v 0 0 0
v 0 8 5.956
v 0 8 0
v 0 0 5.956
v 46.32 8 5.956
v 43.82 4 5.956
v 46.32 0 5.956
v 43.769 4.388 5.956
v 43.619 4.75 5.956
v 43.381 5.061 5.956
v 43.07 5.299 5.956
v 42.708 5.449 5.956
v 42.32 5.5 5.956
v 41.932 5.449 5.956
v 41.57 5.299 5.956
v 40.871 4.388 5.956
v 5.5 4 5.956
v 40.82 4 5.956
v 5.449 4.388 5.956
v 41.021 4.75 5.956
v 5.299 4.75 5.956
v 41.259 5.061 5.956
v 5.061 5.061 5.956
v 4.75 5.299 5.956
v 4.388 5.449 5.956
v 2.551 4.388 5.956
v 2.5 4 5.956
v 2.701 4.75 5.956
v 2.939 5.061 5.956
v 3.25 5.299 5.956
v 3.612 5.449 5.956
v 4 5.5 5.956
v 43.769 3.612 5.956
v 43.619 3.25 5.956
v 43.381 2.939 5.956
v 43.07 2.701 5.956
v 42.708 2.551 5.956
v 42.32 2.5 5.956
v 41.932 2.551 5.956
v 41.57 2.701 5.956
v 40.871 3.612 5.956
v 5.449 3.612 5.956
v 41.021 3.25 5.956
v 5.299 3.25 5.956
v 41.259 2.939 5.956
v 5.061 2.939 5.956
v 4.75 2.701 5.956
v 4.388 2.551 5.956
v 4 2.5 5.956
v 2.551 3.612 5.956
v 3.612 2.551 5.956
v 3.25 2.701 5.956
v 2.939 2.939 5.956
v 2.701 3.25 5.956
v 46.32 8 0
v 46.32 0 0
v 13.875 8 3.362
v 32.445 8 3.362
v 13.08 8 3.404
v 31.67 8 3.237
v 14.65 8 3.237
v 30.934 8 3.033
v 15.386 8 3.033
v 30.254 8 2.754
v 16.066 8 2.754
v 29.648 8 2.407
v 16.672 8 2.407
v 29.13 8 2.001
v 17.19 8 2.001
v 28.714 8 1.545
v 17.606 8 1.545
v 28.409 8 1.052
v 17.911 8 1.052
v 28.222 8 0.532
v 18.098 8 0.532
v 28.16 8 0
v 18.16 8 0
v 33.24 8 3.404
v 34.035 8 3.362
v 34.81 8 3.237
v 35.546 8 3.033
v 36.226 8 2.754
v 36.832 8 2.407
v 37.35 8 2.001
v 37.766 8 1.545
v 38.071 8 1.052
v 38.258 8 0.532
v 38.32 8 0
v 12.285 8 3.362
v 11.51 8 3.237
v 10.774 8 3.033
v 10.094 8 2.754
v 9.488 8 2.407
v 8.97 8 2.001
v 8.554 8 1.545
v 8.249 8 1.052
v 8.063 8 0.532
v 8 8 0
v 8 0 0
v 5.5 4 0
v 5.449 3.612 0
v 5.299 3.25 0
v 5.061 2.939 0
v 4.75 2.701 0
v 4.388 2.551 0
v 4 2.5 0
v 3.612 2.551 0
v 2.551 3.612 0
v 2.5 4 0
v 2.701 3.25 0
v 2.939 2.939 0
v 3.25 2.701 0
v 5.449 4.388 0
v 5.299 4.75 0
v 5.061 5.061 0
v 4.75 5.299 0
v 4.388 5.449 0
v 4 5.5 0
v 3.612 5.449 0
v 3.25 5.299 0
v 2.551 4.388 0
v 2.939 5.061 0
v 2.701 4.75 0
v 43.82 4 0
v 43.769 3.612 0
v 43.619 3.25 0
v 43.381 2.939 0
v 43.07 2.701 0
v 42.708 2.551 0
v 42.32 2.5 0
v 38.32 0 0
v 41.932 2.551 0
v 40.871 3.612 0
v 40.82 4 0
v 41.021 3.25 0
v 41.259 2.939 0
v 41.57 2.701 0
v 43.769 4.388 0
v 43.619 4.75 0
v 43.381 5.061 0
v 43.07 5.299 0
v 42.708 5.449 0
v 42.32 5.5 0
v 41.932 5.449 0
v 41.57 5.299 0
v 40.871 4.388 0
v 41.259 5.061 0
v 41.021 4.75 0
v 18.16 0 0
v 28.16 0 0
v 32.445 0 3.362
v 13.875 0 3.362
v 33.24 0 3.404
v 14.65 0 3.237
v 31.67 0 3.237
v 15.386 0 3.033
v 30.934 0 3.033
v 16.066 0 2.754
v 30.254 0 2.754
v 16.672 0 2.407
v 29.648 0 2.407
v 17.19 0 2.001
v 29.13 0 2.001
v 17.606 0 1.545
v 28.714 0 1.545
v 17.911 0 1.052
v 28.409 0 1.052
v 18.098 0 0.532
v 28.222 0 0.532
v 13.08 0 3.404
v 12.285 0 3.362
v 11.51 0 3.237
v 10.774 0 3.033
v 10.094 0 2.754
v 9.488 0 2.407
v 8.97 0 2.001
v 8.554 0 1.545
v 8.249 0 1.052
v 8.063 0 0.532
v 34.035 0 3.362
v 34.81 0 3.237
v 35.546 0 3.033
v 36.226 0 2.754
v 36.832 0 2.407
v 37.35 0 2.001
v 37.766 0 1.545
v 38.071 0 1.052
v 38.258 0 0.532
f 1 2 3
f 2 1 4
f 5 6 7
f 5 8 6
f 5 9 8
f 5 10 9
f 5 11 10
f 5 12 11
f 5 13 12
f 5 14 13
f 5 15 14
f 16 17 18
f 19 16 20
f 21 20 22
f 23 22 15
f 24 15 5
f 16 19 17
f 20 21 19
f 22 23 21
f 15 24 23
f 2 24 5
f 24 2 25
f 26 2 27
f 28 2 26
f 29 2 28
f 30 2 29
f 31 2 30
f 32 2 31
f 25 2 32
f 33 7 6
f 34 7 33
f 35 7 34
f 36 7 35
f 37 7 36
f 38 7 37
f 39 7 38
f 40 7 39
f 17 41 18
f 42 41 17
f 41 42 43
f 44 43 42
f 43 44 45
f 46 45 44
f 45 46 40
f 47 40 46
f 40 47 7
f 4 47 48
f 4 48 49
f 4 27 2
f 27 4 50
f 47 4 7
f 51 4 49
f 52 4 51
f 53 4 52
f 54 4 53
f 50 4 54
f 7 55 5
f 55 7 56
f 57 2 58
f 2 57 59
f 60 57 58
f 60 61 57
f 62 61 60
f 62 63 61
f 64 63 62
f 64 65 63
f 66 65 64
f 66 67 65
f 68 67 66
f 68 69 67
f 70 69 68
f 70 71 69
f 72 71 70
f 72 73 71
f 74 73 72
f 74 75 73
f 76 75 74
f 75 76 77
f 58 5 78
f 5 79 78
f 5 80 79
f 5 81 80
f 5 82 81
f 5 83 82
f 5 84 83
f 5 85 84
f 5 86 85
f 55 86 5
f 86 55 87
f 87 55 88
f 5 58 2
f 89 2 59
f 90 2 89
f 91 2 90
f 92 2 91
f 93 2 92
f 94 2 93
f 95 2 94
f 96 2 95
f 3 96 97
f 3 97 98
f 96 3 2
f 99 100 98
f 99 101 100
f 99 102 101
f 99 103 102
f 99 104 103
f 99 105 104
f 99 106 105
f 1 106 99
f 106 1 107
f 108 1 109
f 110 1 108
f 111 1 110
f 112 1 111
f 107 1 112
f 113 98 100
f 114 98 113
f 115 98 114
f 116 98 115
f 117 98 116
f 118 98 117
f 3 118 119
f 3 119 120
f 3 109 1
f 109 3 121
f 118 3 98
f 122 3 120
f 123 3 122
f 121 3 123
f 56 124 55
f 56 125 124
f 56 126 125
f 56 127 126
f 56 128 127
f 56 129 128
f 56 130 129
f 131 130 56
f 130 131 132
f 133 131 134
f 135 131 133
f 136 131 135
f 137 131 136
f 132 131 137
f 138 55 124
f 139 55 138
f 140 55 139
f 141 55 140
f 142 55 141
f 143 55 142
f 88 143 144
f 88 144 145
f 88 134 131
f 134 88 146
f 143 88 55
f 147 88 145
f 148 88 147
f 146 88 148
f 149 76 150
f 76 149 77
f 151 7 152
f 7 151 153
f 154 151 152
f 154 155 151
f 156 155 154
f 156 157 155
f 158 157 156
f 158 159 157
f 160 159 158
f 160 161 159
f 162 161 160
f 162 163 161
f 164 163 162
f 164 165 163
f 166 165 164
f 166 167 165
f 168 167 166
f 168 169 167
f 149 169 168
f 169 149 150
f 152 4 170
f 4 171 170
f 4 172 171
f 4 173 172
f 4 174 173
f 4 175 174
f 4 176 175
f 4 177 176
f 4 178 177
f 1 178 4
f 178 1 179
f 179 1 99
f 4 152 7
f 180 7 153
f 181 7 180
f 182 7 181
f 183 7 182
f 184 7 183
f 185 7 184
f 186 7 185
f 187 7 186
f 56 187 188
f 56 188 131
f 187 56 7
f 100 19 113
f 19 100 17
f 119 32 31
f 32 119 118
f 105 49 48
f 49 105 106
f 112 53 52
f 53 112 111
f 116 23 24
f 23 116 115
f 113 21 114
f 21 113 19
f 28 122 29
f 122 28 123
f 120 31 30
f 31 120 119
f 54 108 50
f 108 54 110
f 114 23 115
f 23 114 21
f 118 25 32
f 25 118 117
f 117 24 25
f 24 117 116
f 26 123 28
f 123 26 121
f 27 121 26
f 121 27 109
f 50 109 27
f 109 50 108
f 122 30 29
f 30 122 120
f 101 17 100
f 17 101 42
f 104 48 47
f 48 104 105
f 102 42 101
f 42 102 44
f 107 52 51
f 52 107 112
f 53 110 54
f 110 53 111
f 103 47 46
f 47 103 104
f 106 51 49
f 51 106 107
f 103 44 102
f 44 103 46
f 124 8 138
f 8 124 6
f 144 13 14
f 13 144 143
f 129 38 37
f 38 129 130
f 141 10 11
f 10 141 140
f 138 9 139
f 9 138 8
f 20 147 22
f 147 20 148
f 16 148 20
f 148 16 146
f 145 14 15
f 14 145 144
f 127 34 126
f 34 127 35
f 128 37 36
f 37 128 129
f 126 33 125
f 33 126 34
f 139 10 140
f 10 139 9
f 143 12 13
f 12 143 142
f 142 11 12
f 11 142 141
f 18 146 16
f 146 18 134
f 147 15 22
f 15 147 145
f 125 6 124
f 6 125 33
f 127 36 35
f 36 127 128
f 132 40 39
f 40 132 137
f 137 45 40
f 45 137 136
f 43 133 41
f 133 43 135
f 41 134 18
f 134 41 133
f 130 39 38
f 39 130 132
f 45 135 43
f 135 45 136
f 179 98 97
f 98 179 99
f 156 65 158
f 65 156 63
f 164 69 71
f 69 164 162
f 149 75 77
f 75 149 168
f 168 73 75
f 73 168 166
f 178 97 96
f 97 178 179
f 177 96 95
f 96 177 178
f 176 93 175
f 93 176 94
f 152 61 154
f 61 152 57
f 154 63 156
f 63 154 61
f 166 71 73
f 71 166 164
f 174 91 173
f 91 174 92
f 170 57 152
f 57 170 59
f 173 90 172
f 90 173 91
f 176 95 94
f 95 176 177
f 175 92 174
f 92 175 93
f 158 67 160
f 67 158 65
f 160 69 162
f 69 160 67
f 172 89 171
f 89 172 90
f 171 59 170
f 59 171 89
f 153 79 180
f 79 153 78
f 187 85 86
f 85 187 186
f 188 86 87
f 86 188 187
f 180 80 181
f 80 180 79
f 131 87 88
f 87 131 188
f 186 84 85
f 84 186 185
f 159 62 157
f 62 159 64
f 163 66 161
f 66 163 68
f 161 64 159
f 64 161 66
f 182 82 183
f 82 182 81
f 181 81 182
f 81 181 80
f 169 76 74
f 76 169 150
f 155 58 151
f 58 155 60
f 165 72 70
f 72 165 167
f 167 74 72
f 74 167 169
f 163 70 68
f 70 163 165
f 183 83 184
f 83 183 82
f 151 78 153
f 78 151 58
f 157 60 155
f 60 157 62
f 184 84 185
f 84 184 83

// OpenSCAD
//Constants
h_led = .134*25.4; //mm
h_total = 1.75*h_led; //mm
d_screw = 3;//mm
d_head = 5;//mm
edge=1.5;//mm
center=10;//mm
w_led = .4*25.4; //mm need to measure
w_total = center+2*(w_led+edge+d_head+edge); //mm
l_total = d_head +2*edge; //mm
fudge=.001;//mm to offset coincident faces



//make a cube, and take differences
difference () {
    //root cube
    cube([w_total,l_total,h_total]);
    //remove screwholes
    translate([d_head/2+edge,l_total/2,-fudge])
    cylinder(h=h_total+2*fudge,d=d_screw,$fn=24); 
    translate([w_total-d_head/2-edge,l_total/2,-fudge])
    cylinder(h=h_total+2*fudge,d=d_screw,$fn=24);
    //remove LED relief
    translate([w_total/2-center/2-w_led/2,-fudge,0])
    rotate([-90,0,0])
    scale([w_led/h_led/2,1,1])
    cylinder(h=l_total+2*fudge,d=h_led*2,$fn=40);
    //remove LED relief
    translate([w_total/2+center/2+w_led/2,-fudge,0])
    rotate([-90,0,0])
    scale([w_led/h_led/2,1,1])
    cylinder(h=l_total+2*fudge,d=h_led*2,$fn=40);
    //countersink screw holes
    
    
    
    
}
